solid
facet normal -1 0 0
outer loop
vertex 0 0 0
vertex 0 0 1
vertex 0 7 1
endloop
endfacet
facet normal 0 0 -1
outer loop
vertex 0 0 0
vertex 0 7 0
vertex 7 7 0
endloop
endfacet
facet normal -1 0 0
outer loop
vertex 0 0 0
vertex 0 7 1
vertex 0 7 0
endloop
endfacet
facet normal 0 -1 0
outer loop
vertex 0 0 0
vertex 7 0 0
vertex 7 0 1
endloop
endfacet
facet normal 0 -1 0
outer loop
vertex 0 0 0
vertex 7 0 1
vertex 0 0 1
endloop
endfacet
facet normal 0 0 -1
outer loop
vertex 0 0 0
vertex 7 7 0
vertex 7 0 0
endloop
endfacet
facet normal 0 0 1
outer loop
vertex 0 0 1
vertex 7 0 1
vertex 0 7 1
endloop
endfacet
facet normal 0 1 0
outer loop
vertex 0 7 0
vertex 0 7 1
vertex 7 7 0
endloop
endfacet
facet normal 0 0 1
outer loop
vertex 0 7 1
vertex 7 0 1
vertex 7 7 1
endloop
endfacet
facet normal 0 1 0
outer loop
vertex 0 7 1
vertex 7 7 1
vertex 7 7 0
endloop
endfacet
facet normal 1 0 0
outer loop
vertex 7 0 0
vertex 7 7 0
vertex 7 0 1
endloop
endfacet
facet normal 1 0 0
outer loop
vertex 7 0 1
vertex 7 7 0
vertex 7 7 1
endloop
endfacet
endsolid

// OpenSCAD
/* Warning, this is a very basic generator with a lot of approximation 
input data : [TQFP, T5X, 7x7x1.0mm, 32, , D, C04-00074D]
generated by com.zoubworld.electronics.cad.model3d.Basic
Date : Sun Feb 15 10:50:48 CET 2026
*/

//body
color("black")
translate([0,0,0])
cube([7.0,7.0,1.0], center=false);
